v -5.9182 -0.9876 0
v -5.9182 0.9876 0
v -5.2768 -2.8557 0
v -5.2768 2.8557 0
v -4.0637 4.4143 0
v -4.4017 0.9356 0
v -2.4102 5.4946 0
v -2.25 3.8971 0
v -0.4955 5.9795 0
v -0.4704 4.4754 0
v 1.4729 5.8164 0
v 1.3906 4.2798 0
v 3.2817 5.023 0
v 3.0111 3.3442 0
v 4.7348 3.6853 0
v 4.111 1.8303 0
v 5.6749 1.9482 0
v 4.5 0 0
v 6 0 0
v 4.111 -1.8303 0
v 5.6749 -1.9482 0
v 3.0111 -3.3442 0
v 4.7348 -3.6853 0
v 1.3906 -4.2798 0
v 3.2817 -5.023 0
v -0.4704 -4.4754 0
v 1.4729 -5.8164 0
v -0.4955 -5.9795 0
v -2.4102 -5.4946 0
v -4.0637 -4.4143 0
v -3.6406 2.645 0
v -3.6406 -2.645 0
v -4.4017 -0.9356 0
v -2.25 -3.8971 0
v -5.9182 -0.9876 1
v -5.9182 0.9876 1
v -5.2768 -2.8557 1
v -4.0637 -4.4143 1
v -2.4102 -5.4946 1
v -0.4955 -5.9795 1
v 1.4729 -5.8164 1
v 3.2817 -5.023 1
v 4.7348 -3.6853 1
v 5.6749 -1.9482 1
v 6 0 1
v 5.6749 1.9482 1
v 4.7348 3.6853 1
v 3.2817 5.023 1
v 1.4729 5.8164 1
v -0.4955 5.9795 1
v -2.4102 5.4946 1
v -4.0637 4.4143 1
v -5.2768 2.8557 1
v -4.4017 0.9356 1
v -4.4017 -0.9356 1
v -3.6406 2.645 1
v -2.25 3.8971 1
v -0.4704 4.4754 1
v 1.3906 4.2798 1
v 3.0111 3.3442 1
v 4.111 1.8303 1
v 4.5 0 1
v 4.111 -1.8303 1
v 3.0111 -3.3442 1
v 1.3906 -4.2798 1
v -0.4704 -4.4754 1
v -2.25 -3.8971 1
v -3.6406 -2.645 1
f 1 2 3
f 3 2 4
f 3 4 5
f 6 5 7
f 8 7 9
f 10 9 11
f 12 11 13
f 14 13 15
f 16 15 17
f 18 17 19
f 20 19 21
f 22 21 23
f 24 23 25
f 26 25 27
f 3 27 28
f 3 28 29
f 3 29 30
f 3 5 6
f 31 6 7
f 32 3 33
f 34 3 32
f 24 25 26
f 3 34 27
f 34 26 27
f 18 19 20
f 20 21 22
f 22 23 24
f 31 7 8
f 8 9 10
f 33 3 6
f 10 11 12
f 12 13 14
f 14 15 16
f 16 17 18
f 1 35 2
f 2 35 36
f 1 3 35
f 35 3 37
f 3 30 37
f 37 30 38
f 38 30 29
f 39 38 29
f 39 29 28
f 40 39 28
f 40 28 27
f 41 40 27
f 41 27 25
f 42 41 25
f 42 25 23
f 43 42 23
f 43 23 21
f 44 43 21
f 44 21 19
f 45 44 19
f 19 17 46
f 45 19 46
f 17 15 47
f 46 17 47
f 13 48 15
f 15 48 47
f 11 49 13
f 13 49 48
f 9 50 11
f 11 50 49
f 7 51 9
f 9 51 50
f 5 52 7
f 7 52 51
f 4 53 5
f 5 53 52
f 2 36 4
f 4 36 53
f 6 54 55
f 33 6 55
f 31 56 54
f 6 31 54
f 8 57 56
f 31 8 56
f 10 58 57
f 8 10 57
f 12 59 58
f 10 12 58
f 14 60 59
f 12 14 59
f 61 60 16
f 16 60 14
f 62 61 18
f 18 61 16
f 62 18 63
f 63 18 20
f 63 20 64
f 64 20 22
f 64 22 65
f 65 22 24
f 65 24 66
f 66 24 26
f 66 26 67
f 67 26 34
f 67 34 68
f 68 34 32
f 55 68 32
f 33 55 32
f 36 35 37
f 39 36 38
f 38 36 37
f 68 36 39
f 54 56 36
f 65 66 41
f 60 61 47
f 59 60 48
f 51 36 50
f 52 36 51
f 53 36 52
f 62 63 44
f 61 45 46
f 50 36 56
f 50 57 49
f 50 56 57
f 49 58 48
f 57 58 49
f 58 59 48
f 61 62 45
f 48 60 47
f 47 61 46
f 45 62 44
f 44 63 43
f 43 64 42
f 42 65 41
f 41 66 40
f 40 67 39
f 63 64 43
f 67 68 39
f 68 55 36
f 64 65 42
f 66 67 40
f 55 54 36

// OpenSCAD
module scheppach_play_ring($h=3) {
	difference() {
		cylinder(r=6,h=$h);
		translate([0,0,-0.1]) {
			cylinder(r=4.5,h=$h+0.2);
		}
	}
}

scheppach_play_ring(1);
